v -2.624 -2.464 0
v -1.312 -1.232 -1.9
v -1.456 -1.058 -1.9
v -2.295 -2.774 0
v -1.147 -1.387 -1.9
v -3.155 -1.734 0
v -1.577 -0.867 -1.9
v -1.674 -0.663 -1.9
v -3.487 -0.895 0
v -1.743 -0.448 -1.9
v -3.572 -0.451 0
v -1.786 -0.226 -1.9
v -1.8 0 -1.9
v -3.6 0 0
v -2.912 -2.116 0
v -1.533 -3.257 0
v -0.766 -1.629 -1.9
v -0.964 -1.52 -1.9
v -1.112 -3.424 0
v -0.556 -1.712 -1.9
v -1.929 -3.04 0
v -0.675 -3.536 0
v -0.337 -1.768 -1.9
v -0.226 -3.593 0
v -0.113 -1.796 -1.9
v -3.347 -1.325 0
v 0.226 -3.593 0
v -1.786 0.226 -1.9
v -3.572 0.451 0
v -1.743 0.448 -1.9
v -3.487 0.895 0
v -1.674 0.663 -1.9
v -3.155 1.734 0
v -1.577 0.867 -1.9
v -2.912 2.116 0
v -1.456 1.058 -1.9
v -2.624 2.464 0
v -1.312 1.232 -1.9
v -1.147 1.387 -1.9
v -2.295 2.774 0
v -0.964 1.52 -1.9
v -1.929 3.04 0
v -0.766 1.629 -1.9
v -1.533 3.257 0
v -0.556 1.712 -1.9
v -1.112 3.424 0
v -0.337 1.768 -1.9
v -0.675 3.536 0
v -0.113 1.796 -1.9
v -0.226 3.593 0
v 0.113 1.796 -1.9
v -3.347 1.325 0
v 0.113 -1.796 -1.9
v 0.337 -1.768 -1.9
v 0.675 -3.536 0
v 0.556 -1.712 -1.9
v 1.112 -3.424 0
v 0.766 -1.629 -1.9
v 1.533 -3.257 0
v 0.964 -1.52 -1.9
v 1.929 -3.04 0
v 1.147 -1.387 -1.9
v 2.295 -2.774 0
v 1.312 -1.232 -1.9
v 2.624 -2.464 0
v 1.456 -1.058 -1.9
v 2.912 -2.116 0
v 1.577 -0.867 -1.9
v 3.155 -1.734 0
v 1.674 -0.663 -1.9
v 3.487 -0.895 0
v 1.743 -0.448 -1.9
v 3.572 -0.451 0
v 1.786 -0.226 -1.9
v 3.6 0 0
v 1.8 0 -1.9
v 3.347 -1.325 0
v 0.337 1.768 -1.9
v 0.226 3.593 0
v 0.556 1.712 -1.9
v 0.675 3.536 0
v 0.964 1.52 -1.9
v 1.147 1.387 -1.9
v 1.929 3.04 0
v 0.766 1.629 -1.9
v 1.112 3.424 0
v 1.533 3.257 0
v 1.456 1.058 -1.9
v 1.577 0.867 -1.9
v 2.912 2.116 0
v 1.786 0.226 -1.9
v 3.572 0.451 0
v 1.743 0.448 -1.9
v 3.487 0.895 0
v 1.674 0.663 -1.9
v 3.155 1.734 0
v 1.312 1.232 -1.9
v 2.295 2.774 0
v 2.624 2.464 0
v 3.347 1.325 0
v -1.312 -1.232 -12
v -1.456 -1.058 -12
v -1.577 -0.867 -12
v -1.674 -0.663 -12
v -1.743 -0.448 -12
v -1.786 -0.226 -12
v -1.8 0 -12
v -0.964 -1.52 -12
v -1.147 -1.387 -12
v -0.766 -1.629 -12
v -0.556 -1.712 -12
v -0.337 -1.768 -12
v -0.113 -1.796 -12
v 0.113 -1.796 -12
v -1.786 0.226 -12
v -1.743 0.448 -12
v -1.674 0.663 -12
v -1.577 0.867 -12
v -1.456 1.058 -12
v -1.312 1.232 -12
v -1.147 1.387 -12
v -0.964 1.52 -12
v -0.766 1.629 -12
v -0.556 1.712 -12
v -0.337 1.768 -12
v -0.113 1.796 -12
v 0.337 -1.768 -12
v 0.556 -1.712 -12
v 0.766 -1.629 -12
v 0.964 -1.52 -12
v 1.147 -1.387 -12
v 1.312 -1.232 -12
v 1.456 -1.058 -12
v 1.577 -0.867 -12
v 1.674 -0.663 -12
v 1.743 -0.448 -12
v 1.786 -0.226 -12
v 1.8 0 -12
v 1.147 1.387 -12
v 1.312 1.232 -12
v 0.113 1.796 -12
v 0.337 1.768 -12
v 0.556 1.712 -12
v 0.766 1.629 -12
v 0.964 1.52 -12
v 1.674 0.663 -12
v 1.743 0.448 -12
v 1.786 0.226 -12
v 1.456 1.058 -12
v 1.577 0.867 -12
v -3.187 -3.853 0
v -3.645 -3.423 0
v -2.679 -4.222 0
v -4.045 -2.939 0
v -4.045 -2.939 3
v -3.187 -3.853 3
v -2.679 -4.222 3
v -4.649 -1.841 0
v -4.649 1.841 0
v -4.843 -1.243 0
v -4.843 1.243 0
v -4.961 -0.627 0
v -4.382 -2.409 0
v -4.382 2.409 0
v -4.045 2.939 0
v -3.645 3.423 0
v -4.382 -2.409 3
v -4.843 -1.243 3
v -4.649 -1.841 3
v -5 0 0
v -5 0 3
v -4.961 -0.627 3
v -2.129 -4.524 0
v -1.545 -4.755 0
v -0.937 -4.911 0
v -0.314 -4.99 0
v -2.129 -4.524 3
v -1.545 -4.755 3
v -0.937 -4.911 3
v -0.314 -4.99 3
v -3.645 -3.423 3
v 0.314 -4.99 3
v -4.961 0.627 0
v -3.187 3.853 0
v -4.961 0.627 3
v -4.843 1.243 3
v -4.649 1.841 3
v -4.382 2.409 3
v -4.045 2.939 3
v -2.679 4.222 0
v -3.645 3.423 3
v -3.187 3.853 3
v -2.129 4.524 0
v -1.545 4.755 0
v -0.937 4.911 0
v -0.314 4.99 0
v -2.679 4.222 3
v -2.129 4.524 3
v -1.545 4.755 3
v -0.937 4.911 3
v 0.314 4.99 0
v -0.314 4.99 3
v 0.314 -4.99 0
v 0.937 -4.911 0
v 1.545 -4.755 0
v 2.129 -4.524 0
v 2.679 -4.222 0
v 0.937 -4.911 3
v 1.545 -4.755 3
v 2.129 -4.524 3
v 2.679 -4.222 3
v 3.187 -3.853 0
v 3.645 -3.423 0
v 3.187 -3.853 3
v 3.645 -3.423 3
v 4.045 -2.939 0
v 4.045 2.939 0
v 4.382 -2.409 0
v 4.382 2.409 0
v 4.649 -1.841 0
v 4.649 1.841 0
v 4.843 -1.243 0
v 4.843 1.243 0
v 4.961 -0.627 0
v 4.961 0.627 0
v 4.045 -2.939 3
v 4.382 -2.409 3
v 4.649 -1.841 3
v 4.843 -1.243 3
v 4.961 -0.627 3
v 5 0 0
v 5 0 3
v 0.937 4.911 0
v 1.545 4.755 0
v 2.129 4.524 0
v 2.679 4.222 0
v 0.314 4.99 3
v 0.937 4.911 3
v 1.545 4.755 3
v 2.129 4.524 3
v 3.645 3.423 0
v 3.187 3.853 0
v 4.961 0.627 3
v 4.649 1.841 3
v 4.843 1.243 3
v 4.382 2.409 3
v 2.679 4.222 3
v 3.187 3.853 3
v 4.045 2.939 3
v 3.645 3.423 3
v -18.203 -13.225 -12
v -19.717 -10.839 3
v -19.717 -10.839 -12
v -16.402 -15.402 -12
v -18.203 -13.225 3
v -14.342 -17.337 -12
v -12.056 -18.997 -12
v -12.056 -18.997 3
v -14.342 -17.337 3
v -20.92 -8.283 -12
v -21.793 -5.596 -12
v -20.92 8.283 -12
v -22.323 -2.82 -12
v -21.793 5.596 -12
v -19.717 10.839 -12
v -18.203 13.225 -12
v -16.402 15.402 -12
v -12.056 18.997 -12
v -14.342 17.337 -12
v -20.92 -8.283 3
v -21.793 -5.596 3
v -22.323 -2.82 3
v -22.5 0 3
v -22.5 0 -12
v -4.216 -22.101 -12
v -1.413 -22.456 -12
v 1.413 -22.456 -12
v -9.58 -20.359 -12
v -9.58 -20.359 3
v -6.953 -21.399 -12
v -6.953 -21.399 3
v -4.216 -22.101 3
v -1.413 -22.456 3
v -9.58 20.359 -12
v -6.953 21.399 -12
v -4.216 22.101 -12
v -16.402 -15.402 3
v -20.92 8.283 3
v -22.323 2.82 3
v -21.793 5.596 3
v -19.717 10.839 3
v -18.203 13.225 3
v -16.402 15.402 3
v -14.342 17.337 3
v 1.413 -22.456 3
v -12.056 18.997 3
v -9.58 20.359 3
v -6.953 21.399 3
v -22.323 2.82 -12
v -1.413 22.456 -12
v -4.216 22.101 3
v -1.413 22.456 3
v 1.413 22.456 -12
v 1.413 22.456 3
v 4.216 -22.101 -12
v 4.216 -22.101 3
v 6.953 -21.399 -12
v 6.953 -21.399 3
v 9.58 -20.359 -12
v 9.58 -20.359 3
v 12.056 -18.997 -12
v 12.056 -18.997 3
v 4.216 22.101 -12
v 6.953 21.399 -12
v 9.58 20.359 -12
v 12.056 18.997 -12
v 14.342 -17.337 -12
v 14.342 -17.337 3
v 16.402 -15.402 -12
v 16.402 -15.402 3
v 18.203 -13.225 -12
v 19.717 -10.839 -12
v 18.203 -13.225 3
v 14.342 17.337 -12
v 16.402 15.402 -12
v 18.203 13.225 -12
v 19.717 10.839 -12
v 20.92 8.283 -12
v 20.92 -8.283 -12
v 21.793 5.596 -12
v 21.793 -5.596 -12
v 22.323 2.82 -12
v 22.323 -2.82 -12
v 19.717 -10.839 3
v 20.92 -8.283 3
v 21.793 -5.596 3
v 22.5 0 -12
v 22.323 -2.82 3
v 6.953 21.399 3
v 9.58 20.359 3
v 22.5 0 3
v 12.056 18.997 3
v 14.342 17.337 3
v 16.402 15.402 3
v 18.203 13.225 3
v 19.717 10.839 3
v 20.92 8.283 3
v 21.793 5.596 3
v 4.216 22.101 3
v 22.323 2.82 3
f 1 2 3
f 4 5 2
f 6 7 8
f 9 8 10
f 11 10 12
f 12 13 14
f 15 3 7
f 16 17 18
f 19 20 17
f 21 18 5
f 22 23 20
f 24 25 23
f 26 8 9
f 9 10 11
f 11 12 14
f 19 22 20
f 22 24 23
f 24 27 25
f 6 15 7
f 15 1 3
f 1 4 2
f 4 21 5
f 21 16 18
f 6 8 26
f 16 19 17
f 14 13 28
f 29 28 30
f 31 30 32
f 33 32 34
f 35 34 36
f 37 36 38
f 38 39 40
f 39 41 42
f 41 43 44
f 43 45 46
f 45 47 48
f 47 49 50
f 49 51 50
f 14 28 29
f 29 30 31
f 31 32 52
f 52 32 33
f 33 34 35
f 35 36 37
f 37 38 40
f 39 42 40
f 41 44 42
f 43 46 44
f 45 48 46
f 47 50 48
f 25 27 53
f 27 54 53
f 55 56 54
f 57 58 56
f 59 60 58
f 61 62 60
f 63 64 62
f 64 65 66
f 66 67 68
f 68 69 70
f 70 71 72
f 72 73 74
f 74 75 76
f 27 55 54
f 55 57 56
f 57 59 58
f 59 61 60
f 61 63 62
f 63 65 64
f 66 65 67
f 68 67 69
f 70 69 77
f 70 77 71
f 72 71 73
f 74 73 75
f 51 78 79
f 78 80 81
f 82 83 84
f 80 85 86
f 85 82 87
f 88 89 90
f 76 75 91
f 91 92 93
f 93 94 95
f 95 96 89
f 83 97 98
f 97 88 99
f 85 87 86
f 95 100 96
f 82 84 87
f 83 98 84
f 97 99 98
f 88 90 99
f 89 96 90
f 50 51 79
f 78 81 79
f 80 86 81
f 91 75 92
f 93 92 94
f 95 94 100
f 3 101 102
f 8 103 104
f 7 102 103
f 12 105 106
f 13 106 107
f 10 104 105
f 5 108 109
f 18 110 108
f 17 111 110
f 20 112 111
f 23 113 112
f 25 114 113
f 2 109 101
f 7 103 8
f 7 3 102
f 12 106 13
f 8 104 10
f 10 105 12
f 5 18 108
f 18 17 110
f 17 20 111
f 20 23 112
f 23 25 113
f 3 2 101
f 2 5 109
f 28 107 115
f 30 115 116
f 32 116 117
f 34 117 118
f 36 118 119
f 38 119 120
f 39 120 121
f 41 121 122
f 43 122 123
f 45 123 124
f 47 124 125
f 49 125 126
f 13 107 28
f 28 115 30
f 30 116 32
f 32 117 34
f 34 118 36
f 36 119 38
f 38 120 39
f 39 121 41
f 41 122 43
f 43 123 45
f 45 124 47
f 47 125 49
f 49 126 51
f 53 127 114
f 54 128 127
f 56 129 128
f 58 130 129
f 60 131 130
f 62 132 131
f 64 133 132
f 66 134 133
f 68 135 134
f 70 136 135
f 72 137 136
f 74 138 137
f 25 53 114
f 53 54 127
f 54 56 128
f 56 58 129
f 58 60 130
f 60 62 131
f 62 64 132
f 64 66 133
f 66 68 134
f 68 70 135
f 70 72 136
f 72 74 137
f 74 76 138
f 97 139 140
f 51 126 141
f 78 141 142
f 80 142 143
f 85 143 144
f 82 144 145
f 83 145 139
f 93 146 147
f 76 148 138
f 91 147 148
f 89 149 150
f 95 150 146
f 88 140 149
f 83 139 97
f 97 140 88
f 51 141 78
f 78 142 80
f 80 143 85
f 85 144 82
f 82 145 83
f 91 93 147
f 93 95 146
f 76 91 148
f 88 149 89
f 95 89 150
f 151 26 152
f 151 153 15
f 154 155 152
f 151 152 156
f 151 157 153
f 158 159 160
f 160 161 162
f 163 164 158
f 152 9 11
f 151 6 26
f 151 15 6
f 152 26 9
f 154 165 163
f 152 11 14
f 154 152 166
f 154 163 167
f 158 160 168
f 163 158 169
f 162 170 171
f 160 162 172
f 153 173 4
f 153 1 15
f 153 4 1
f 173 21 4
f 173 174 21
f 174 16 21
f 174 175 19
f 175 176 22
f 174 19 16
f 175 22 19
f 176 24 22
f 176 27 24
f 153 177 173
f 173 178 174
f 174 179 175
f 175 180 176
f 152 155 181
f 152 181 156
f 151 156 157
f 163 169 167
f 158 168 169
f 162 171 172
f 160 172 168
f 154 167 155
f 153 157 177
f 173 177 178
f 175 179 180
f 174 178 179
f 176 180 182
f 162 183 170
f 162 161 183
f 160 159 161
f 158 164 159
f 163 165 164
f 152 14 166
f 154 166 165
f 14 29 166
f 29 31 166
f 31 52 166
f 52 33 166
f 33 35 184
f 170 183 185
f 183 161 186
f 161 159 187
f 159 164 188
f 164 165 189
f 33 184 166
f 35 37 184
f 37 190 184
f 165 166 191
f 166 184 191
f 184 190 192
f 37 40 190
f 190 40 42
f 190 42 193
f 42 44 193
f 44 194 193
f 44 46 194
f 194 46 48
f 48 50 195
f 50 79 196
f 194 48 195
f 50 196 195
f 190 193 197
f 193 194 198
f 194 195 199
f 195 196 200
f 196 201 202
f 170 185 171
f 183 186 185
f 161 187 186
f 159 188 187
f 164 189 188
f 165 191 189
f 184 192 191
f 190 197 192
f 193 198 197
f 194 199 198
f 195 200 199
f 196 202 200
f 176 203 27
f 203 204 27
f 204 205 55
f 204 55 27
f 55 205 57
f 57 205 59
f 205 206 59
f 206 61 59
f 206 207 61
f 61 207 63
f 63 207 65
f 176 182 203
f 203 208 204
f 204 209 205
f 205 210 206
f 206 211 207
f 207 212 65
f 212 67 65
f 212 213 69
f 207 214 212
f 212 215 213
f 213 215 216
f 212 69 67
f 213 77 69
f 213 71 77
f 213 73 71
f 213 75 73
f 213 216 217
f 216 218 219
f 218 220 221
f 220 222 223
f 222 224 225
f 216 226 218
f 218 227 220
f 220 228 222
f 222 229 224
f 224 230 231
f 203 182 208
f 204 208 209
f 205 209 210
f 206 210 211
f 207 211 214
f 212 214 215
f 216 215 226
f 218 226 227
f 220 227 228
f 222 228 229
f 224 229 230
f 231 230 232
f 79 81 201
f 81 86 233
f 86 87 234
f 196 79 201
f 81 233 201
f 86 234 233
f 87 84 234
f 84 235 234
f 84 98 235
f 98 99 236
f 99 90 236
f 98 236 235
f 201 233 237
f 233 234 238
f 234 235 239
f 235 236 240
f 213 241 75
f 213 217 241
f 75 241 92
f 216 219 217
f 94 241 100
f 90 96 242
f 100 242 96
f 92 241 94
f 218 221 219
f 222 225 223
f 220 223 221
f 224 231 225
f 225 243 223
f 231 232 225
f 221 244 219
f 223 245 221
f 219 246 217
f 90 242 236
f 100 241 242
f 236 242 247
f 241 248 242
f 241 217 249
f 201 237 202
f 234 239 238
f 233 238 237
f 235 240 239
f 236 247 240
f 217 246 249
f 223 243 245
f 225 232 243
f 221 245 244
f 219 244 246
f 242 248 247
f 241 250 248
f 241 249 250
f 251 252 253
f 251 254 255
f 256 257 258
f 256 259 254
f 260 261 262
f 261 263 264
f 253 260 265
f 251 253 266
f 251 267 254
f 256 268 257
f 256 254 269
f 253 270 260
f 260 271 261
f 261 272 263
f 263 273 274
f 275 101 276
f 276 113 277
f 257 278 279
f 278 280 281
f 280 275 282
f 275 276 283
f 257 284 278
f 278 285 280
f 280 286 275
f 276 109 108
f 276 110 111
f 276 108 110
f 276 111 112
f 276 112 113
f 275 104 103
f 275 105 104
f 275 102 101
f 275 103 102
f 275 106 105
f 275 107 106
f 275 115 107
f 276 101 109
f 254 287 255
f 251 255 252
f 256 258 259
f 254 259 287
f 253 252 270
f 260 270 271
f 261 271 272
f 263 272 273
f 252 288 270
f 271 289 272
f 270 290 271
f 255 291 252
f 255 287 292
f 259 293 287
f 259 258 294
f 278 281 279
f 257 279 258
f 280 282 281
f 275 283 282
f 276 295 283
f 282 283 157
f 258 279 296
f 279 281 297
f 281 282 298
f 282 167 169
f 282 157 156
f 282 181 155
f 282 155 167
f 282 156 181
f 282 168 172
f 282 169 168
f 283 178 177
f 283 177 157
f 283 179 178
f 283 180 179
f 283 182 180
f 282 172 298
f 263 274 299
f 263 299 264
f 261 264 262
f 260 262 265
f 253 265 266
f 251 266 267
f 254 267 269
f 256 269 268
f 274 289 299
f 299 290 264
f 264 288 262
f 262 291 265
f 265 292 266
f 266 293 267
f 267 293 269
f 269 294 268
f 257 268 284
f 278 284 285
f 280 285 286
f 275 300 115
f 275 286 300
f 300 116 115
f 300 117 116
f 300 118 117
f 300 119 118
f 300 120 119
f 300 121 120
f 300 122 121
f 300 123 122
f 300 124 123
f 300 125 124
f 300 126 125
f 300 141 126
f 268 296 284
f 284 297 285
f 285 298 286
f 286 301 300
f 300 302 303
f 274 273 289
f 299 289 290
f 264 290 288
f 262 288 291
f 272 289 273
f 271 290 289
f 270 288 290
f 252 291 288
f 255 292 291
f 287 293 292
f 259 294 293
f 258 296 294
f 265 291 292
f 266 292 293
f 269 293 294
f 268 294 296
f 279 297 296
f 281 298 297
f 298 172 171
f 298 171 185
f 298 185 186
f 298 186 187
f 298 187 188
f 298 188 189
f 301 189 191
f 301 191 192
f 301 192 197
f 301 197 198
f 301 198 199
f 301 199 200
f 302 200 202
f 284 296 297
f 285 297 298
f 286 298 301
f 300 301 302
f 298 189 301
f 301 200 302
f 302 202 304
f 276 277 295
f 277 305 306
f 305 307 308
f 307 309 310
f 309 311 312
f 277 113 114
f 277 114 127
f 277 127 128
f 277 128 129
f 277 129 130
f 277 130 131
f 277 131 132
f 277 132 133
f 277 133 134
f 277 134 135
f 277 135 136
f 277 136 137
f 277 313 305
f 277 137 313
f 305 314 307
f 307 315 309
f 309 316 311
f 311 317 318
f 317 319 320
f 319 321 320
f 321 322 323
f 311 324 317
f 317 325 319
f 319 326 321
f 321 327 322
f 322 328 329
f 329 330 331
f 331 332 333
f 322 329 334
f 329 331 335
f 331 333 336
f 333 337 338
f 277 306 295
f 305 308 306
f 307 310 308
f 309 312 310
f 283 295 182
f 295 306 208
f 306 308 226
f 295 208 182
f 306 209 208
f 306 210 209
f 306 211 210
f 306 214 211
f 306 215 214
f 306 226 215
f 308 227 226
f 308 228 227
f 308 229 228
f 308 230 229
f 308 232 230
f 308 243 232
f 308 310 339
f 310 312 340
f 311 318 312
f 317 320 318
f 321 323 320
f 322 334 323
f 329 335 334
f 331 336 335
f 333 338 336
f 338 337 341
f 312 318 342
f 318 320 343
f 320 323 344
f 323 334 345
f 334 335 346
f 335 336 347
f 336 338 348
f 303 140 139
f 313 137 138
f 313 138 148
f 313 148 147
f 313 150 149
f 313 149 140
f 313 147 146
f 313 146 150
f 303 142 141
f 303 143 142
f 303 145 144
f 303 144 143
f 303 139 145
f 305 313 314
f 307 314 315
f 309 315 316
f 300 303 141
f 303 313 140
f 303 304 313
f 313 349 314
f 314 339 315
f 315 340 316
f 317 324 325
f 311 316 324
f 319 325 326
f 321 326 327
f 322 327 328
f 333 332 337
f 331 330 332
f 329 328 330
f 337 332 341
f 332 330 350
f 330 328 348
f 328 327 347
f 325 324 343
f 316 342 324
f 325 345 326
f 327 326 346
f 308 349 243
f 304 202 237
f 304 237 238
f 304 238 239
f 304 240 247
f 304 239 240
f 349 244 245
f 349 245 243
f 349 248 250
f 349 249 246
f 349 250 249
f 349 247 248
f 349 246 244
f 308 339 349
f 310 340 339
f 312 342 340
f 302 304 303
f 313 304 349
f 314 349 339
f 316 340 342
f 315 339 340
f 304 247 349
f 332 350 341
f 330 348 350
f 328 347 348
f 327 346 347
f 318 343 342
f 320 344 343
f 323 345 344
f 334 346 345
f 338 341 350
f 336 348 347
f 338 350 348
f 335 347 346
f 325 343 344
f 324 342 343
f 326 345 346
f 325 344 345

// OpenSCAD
$fn = 50;

difference() {
	union() {
		translate(v = [0, 0, -12.0]) {
			cylinder(h = 15, r = 22.5);
		}
	}
	union() {
		translate(v = [0, 0, 0]) {
			rotate(a = [0, 0, 0]) {
				difference() {
					union() {
						translate(v = [0, 0, -15.0]) {
							cylinder(h = 15, r = 1.5);
						}
						translate(v = [0, 0, -1.9]) {
							cylinder(h = 1.9, r1 = 1.8, r2 = 3.6);
						}
						translate(v = [0, 0, -15.0]) {
							cylinder(h = 15, r = 1.8);
						}
						translate(v = [0, 0, -15.0]) {
							cylinder(h = 15, r = 1.5);
						}
					}
					union();
				}
			}
		}
		#cylinder(h = 3, r = 5.0);
	}
}
